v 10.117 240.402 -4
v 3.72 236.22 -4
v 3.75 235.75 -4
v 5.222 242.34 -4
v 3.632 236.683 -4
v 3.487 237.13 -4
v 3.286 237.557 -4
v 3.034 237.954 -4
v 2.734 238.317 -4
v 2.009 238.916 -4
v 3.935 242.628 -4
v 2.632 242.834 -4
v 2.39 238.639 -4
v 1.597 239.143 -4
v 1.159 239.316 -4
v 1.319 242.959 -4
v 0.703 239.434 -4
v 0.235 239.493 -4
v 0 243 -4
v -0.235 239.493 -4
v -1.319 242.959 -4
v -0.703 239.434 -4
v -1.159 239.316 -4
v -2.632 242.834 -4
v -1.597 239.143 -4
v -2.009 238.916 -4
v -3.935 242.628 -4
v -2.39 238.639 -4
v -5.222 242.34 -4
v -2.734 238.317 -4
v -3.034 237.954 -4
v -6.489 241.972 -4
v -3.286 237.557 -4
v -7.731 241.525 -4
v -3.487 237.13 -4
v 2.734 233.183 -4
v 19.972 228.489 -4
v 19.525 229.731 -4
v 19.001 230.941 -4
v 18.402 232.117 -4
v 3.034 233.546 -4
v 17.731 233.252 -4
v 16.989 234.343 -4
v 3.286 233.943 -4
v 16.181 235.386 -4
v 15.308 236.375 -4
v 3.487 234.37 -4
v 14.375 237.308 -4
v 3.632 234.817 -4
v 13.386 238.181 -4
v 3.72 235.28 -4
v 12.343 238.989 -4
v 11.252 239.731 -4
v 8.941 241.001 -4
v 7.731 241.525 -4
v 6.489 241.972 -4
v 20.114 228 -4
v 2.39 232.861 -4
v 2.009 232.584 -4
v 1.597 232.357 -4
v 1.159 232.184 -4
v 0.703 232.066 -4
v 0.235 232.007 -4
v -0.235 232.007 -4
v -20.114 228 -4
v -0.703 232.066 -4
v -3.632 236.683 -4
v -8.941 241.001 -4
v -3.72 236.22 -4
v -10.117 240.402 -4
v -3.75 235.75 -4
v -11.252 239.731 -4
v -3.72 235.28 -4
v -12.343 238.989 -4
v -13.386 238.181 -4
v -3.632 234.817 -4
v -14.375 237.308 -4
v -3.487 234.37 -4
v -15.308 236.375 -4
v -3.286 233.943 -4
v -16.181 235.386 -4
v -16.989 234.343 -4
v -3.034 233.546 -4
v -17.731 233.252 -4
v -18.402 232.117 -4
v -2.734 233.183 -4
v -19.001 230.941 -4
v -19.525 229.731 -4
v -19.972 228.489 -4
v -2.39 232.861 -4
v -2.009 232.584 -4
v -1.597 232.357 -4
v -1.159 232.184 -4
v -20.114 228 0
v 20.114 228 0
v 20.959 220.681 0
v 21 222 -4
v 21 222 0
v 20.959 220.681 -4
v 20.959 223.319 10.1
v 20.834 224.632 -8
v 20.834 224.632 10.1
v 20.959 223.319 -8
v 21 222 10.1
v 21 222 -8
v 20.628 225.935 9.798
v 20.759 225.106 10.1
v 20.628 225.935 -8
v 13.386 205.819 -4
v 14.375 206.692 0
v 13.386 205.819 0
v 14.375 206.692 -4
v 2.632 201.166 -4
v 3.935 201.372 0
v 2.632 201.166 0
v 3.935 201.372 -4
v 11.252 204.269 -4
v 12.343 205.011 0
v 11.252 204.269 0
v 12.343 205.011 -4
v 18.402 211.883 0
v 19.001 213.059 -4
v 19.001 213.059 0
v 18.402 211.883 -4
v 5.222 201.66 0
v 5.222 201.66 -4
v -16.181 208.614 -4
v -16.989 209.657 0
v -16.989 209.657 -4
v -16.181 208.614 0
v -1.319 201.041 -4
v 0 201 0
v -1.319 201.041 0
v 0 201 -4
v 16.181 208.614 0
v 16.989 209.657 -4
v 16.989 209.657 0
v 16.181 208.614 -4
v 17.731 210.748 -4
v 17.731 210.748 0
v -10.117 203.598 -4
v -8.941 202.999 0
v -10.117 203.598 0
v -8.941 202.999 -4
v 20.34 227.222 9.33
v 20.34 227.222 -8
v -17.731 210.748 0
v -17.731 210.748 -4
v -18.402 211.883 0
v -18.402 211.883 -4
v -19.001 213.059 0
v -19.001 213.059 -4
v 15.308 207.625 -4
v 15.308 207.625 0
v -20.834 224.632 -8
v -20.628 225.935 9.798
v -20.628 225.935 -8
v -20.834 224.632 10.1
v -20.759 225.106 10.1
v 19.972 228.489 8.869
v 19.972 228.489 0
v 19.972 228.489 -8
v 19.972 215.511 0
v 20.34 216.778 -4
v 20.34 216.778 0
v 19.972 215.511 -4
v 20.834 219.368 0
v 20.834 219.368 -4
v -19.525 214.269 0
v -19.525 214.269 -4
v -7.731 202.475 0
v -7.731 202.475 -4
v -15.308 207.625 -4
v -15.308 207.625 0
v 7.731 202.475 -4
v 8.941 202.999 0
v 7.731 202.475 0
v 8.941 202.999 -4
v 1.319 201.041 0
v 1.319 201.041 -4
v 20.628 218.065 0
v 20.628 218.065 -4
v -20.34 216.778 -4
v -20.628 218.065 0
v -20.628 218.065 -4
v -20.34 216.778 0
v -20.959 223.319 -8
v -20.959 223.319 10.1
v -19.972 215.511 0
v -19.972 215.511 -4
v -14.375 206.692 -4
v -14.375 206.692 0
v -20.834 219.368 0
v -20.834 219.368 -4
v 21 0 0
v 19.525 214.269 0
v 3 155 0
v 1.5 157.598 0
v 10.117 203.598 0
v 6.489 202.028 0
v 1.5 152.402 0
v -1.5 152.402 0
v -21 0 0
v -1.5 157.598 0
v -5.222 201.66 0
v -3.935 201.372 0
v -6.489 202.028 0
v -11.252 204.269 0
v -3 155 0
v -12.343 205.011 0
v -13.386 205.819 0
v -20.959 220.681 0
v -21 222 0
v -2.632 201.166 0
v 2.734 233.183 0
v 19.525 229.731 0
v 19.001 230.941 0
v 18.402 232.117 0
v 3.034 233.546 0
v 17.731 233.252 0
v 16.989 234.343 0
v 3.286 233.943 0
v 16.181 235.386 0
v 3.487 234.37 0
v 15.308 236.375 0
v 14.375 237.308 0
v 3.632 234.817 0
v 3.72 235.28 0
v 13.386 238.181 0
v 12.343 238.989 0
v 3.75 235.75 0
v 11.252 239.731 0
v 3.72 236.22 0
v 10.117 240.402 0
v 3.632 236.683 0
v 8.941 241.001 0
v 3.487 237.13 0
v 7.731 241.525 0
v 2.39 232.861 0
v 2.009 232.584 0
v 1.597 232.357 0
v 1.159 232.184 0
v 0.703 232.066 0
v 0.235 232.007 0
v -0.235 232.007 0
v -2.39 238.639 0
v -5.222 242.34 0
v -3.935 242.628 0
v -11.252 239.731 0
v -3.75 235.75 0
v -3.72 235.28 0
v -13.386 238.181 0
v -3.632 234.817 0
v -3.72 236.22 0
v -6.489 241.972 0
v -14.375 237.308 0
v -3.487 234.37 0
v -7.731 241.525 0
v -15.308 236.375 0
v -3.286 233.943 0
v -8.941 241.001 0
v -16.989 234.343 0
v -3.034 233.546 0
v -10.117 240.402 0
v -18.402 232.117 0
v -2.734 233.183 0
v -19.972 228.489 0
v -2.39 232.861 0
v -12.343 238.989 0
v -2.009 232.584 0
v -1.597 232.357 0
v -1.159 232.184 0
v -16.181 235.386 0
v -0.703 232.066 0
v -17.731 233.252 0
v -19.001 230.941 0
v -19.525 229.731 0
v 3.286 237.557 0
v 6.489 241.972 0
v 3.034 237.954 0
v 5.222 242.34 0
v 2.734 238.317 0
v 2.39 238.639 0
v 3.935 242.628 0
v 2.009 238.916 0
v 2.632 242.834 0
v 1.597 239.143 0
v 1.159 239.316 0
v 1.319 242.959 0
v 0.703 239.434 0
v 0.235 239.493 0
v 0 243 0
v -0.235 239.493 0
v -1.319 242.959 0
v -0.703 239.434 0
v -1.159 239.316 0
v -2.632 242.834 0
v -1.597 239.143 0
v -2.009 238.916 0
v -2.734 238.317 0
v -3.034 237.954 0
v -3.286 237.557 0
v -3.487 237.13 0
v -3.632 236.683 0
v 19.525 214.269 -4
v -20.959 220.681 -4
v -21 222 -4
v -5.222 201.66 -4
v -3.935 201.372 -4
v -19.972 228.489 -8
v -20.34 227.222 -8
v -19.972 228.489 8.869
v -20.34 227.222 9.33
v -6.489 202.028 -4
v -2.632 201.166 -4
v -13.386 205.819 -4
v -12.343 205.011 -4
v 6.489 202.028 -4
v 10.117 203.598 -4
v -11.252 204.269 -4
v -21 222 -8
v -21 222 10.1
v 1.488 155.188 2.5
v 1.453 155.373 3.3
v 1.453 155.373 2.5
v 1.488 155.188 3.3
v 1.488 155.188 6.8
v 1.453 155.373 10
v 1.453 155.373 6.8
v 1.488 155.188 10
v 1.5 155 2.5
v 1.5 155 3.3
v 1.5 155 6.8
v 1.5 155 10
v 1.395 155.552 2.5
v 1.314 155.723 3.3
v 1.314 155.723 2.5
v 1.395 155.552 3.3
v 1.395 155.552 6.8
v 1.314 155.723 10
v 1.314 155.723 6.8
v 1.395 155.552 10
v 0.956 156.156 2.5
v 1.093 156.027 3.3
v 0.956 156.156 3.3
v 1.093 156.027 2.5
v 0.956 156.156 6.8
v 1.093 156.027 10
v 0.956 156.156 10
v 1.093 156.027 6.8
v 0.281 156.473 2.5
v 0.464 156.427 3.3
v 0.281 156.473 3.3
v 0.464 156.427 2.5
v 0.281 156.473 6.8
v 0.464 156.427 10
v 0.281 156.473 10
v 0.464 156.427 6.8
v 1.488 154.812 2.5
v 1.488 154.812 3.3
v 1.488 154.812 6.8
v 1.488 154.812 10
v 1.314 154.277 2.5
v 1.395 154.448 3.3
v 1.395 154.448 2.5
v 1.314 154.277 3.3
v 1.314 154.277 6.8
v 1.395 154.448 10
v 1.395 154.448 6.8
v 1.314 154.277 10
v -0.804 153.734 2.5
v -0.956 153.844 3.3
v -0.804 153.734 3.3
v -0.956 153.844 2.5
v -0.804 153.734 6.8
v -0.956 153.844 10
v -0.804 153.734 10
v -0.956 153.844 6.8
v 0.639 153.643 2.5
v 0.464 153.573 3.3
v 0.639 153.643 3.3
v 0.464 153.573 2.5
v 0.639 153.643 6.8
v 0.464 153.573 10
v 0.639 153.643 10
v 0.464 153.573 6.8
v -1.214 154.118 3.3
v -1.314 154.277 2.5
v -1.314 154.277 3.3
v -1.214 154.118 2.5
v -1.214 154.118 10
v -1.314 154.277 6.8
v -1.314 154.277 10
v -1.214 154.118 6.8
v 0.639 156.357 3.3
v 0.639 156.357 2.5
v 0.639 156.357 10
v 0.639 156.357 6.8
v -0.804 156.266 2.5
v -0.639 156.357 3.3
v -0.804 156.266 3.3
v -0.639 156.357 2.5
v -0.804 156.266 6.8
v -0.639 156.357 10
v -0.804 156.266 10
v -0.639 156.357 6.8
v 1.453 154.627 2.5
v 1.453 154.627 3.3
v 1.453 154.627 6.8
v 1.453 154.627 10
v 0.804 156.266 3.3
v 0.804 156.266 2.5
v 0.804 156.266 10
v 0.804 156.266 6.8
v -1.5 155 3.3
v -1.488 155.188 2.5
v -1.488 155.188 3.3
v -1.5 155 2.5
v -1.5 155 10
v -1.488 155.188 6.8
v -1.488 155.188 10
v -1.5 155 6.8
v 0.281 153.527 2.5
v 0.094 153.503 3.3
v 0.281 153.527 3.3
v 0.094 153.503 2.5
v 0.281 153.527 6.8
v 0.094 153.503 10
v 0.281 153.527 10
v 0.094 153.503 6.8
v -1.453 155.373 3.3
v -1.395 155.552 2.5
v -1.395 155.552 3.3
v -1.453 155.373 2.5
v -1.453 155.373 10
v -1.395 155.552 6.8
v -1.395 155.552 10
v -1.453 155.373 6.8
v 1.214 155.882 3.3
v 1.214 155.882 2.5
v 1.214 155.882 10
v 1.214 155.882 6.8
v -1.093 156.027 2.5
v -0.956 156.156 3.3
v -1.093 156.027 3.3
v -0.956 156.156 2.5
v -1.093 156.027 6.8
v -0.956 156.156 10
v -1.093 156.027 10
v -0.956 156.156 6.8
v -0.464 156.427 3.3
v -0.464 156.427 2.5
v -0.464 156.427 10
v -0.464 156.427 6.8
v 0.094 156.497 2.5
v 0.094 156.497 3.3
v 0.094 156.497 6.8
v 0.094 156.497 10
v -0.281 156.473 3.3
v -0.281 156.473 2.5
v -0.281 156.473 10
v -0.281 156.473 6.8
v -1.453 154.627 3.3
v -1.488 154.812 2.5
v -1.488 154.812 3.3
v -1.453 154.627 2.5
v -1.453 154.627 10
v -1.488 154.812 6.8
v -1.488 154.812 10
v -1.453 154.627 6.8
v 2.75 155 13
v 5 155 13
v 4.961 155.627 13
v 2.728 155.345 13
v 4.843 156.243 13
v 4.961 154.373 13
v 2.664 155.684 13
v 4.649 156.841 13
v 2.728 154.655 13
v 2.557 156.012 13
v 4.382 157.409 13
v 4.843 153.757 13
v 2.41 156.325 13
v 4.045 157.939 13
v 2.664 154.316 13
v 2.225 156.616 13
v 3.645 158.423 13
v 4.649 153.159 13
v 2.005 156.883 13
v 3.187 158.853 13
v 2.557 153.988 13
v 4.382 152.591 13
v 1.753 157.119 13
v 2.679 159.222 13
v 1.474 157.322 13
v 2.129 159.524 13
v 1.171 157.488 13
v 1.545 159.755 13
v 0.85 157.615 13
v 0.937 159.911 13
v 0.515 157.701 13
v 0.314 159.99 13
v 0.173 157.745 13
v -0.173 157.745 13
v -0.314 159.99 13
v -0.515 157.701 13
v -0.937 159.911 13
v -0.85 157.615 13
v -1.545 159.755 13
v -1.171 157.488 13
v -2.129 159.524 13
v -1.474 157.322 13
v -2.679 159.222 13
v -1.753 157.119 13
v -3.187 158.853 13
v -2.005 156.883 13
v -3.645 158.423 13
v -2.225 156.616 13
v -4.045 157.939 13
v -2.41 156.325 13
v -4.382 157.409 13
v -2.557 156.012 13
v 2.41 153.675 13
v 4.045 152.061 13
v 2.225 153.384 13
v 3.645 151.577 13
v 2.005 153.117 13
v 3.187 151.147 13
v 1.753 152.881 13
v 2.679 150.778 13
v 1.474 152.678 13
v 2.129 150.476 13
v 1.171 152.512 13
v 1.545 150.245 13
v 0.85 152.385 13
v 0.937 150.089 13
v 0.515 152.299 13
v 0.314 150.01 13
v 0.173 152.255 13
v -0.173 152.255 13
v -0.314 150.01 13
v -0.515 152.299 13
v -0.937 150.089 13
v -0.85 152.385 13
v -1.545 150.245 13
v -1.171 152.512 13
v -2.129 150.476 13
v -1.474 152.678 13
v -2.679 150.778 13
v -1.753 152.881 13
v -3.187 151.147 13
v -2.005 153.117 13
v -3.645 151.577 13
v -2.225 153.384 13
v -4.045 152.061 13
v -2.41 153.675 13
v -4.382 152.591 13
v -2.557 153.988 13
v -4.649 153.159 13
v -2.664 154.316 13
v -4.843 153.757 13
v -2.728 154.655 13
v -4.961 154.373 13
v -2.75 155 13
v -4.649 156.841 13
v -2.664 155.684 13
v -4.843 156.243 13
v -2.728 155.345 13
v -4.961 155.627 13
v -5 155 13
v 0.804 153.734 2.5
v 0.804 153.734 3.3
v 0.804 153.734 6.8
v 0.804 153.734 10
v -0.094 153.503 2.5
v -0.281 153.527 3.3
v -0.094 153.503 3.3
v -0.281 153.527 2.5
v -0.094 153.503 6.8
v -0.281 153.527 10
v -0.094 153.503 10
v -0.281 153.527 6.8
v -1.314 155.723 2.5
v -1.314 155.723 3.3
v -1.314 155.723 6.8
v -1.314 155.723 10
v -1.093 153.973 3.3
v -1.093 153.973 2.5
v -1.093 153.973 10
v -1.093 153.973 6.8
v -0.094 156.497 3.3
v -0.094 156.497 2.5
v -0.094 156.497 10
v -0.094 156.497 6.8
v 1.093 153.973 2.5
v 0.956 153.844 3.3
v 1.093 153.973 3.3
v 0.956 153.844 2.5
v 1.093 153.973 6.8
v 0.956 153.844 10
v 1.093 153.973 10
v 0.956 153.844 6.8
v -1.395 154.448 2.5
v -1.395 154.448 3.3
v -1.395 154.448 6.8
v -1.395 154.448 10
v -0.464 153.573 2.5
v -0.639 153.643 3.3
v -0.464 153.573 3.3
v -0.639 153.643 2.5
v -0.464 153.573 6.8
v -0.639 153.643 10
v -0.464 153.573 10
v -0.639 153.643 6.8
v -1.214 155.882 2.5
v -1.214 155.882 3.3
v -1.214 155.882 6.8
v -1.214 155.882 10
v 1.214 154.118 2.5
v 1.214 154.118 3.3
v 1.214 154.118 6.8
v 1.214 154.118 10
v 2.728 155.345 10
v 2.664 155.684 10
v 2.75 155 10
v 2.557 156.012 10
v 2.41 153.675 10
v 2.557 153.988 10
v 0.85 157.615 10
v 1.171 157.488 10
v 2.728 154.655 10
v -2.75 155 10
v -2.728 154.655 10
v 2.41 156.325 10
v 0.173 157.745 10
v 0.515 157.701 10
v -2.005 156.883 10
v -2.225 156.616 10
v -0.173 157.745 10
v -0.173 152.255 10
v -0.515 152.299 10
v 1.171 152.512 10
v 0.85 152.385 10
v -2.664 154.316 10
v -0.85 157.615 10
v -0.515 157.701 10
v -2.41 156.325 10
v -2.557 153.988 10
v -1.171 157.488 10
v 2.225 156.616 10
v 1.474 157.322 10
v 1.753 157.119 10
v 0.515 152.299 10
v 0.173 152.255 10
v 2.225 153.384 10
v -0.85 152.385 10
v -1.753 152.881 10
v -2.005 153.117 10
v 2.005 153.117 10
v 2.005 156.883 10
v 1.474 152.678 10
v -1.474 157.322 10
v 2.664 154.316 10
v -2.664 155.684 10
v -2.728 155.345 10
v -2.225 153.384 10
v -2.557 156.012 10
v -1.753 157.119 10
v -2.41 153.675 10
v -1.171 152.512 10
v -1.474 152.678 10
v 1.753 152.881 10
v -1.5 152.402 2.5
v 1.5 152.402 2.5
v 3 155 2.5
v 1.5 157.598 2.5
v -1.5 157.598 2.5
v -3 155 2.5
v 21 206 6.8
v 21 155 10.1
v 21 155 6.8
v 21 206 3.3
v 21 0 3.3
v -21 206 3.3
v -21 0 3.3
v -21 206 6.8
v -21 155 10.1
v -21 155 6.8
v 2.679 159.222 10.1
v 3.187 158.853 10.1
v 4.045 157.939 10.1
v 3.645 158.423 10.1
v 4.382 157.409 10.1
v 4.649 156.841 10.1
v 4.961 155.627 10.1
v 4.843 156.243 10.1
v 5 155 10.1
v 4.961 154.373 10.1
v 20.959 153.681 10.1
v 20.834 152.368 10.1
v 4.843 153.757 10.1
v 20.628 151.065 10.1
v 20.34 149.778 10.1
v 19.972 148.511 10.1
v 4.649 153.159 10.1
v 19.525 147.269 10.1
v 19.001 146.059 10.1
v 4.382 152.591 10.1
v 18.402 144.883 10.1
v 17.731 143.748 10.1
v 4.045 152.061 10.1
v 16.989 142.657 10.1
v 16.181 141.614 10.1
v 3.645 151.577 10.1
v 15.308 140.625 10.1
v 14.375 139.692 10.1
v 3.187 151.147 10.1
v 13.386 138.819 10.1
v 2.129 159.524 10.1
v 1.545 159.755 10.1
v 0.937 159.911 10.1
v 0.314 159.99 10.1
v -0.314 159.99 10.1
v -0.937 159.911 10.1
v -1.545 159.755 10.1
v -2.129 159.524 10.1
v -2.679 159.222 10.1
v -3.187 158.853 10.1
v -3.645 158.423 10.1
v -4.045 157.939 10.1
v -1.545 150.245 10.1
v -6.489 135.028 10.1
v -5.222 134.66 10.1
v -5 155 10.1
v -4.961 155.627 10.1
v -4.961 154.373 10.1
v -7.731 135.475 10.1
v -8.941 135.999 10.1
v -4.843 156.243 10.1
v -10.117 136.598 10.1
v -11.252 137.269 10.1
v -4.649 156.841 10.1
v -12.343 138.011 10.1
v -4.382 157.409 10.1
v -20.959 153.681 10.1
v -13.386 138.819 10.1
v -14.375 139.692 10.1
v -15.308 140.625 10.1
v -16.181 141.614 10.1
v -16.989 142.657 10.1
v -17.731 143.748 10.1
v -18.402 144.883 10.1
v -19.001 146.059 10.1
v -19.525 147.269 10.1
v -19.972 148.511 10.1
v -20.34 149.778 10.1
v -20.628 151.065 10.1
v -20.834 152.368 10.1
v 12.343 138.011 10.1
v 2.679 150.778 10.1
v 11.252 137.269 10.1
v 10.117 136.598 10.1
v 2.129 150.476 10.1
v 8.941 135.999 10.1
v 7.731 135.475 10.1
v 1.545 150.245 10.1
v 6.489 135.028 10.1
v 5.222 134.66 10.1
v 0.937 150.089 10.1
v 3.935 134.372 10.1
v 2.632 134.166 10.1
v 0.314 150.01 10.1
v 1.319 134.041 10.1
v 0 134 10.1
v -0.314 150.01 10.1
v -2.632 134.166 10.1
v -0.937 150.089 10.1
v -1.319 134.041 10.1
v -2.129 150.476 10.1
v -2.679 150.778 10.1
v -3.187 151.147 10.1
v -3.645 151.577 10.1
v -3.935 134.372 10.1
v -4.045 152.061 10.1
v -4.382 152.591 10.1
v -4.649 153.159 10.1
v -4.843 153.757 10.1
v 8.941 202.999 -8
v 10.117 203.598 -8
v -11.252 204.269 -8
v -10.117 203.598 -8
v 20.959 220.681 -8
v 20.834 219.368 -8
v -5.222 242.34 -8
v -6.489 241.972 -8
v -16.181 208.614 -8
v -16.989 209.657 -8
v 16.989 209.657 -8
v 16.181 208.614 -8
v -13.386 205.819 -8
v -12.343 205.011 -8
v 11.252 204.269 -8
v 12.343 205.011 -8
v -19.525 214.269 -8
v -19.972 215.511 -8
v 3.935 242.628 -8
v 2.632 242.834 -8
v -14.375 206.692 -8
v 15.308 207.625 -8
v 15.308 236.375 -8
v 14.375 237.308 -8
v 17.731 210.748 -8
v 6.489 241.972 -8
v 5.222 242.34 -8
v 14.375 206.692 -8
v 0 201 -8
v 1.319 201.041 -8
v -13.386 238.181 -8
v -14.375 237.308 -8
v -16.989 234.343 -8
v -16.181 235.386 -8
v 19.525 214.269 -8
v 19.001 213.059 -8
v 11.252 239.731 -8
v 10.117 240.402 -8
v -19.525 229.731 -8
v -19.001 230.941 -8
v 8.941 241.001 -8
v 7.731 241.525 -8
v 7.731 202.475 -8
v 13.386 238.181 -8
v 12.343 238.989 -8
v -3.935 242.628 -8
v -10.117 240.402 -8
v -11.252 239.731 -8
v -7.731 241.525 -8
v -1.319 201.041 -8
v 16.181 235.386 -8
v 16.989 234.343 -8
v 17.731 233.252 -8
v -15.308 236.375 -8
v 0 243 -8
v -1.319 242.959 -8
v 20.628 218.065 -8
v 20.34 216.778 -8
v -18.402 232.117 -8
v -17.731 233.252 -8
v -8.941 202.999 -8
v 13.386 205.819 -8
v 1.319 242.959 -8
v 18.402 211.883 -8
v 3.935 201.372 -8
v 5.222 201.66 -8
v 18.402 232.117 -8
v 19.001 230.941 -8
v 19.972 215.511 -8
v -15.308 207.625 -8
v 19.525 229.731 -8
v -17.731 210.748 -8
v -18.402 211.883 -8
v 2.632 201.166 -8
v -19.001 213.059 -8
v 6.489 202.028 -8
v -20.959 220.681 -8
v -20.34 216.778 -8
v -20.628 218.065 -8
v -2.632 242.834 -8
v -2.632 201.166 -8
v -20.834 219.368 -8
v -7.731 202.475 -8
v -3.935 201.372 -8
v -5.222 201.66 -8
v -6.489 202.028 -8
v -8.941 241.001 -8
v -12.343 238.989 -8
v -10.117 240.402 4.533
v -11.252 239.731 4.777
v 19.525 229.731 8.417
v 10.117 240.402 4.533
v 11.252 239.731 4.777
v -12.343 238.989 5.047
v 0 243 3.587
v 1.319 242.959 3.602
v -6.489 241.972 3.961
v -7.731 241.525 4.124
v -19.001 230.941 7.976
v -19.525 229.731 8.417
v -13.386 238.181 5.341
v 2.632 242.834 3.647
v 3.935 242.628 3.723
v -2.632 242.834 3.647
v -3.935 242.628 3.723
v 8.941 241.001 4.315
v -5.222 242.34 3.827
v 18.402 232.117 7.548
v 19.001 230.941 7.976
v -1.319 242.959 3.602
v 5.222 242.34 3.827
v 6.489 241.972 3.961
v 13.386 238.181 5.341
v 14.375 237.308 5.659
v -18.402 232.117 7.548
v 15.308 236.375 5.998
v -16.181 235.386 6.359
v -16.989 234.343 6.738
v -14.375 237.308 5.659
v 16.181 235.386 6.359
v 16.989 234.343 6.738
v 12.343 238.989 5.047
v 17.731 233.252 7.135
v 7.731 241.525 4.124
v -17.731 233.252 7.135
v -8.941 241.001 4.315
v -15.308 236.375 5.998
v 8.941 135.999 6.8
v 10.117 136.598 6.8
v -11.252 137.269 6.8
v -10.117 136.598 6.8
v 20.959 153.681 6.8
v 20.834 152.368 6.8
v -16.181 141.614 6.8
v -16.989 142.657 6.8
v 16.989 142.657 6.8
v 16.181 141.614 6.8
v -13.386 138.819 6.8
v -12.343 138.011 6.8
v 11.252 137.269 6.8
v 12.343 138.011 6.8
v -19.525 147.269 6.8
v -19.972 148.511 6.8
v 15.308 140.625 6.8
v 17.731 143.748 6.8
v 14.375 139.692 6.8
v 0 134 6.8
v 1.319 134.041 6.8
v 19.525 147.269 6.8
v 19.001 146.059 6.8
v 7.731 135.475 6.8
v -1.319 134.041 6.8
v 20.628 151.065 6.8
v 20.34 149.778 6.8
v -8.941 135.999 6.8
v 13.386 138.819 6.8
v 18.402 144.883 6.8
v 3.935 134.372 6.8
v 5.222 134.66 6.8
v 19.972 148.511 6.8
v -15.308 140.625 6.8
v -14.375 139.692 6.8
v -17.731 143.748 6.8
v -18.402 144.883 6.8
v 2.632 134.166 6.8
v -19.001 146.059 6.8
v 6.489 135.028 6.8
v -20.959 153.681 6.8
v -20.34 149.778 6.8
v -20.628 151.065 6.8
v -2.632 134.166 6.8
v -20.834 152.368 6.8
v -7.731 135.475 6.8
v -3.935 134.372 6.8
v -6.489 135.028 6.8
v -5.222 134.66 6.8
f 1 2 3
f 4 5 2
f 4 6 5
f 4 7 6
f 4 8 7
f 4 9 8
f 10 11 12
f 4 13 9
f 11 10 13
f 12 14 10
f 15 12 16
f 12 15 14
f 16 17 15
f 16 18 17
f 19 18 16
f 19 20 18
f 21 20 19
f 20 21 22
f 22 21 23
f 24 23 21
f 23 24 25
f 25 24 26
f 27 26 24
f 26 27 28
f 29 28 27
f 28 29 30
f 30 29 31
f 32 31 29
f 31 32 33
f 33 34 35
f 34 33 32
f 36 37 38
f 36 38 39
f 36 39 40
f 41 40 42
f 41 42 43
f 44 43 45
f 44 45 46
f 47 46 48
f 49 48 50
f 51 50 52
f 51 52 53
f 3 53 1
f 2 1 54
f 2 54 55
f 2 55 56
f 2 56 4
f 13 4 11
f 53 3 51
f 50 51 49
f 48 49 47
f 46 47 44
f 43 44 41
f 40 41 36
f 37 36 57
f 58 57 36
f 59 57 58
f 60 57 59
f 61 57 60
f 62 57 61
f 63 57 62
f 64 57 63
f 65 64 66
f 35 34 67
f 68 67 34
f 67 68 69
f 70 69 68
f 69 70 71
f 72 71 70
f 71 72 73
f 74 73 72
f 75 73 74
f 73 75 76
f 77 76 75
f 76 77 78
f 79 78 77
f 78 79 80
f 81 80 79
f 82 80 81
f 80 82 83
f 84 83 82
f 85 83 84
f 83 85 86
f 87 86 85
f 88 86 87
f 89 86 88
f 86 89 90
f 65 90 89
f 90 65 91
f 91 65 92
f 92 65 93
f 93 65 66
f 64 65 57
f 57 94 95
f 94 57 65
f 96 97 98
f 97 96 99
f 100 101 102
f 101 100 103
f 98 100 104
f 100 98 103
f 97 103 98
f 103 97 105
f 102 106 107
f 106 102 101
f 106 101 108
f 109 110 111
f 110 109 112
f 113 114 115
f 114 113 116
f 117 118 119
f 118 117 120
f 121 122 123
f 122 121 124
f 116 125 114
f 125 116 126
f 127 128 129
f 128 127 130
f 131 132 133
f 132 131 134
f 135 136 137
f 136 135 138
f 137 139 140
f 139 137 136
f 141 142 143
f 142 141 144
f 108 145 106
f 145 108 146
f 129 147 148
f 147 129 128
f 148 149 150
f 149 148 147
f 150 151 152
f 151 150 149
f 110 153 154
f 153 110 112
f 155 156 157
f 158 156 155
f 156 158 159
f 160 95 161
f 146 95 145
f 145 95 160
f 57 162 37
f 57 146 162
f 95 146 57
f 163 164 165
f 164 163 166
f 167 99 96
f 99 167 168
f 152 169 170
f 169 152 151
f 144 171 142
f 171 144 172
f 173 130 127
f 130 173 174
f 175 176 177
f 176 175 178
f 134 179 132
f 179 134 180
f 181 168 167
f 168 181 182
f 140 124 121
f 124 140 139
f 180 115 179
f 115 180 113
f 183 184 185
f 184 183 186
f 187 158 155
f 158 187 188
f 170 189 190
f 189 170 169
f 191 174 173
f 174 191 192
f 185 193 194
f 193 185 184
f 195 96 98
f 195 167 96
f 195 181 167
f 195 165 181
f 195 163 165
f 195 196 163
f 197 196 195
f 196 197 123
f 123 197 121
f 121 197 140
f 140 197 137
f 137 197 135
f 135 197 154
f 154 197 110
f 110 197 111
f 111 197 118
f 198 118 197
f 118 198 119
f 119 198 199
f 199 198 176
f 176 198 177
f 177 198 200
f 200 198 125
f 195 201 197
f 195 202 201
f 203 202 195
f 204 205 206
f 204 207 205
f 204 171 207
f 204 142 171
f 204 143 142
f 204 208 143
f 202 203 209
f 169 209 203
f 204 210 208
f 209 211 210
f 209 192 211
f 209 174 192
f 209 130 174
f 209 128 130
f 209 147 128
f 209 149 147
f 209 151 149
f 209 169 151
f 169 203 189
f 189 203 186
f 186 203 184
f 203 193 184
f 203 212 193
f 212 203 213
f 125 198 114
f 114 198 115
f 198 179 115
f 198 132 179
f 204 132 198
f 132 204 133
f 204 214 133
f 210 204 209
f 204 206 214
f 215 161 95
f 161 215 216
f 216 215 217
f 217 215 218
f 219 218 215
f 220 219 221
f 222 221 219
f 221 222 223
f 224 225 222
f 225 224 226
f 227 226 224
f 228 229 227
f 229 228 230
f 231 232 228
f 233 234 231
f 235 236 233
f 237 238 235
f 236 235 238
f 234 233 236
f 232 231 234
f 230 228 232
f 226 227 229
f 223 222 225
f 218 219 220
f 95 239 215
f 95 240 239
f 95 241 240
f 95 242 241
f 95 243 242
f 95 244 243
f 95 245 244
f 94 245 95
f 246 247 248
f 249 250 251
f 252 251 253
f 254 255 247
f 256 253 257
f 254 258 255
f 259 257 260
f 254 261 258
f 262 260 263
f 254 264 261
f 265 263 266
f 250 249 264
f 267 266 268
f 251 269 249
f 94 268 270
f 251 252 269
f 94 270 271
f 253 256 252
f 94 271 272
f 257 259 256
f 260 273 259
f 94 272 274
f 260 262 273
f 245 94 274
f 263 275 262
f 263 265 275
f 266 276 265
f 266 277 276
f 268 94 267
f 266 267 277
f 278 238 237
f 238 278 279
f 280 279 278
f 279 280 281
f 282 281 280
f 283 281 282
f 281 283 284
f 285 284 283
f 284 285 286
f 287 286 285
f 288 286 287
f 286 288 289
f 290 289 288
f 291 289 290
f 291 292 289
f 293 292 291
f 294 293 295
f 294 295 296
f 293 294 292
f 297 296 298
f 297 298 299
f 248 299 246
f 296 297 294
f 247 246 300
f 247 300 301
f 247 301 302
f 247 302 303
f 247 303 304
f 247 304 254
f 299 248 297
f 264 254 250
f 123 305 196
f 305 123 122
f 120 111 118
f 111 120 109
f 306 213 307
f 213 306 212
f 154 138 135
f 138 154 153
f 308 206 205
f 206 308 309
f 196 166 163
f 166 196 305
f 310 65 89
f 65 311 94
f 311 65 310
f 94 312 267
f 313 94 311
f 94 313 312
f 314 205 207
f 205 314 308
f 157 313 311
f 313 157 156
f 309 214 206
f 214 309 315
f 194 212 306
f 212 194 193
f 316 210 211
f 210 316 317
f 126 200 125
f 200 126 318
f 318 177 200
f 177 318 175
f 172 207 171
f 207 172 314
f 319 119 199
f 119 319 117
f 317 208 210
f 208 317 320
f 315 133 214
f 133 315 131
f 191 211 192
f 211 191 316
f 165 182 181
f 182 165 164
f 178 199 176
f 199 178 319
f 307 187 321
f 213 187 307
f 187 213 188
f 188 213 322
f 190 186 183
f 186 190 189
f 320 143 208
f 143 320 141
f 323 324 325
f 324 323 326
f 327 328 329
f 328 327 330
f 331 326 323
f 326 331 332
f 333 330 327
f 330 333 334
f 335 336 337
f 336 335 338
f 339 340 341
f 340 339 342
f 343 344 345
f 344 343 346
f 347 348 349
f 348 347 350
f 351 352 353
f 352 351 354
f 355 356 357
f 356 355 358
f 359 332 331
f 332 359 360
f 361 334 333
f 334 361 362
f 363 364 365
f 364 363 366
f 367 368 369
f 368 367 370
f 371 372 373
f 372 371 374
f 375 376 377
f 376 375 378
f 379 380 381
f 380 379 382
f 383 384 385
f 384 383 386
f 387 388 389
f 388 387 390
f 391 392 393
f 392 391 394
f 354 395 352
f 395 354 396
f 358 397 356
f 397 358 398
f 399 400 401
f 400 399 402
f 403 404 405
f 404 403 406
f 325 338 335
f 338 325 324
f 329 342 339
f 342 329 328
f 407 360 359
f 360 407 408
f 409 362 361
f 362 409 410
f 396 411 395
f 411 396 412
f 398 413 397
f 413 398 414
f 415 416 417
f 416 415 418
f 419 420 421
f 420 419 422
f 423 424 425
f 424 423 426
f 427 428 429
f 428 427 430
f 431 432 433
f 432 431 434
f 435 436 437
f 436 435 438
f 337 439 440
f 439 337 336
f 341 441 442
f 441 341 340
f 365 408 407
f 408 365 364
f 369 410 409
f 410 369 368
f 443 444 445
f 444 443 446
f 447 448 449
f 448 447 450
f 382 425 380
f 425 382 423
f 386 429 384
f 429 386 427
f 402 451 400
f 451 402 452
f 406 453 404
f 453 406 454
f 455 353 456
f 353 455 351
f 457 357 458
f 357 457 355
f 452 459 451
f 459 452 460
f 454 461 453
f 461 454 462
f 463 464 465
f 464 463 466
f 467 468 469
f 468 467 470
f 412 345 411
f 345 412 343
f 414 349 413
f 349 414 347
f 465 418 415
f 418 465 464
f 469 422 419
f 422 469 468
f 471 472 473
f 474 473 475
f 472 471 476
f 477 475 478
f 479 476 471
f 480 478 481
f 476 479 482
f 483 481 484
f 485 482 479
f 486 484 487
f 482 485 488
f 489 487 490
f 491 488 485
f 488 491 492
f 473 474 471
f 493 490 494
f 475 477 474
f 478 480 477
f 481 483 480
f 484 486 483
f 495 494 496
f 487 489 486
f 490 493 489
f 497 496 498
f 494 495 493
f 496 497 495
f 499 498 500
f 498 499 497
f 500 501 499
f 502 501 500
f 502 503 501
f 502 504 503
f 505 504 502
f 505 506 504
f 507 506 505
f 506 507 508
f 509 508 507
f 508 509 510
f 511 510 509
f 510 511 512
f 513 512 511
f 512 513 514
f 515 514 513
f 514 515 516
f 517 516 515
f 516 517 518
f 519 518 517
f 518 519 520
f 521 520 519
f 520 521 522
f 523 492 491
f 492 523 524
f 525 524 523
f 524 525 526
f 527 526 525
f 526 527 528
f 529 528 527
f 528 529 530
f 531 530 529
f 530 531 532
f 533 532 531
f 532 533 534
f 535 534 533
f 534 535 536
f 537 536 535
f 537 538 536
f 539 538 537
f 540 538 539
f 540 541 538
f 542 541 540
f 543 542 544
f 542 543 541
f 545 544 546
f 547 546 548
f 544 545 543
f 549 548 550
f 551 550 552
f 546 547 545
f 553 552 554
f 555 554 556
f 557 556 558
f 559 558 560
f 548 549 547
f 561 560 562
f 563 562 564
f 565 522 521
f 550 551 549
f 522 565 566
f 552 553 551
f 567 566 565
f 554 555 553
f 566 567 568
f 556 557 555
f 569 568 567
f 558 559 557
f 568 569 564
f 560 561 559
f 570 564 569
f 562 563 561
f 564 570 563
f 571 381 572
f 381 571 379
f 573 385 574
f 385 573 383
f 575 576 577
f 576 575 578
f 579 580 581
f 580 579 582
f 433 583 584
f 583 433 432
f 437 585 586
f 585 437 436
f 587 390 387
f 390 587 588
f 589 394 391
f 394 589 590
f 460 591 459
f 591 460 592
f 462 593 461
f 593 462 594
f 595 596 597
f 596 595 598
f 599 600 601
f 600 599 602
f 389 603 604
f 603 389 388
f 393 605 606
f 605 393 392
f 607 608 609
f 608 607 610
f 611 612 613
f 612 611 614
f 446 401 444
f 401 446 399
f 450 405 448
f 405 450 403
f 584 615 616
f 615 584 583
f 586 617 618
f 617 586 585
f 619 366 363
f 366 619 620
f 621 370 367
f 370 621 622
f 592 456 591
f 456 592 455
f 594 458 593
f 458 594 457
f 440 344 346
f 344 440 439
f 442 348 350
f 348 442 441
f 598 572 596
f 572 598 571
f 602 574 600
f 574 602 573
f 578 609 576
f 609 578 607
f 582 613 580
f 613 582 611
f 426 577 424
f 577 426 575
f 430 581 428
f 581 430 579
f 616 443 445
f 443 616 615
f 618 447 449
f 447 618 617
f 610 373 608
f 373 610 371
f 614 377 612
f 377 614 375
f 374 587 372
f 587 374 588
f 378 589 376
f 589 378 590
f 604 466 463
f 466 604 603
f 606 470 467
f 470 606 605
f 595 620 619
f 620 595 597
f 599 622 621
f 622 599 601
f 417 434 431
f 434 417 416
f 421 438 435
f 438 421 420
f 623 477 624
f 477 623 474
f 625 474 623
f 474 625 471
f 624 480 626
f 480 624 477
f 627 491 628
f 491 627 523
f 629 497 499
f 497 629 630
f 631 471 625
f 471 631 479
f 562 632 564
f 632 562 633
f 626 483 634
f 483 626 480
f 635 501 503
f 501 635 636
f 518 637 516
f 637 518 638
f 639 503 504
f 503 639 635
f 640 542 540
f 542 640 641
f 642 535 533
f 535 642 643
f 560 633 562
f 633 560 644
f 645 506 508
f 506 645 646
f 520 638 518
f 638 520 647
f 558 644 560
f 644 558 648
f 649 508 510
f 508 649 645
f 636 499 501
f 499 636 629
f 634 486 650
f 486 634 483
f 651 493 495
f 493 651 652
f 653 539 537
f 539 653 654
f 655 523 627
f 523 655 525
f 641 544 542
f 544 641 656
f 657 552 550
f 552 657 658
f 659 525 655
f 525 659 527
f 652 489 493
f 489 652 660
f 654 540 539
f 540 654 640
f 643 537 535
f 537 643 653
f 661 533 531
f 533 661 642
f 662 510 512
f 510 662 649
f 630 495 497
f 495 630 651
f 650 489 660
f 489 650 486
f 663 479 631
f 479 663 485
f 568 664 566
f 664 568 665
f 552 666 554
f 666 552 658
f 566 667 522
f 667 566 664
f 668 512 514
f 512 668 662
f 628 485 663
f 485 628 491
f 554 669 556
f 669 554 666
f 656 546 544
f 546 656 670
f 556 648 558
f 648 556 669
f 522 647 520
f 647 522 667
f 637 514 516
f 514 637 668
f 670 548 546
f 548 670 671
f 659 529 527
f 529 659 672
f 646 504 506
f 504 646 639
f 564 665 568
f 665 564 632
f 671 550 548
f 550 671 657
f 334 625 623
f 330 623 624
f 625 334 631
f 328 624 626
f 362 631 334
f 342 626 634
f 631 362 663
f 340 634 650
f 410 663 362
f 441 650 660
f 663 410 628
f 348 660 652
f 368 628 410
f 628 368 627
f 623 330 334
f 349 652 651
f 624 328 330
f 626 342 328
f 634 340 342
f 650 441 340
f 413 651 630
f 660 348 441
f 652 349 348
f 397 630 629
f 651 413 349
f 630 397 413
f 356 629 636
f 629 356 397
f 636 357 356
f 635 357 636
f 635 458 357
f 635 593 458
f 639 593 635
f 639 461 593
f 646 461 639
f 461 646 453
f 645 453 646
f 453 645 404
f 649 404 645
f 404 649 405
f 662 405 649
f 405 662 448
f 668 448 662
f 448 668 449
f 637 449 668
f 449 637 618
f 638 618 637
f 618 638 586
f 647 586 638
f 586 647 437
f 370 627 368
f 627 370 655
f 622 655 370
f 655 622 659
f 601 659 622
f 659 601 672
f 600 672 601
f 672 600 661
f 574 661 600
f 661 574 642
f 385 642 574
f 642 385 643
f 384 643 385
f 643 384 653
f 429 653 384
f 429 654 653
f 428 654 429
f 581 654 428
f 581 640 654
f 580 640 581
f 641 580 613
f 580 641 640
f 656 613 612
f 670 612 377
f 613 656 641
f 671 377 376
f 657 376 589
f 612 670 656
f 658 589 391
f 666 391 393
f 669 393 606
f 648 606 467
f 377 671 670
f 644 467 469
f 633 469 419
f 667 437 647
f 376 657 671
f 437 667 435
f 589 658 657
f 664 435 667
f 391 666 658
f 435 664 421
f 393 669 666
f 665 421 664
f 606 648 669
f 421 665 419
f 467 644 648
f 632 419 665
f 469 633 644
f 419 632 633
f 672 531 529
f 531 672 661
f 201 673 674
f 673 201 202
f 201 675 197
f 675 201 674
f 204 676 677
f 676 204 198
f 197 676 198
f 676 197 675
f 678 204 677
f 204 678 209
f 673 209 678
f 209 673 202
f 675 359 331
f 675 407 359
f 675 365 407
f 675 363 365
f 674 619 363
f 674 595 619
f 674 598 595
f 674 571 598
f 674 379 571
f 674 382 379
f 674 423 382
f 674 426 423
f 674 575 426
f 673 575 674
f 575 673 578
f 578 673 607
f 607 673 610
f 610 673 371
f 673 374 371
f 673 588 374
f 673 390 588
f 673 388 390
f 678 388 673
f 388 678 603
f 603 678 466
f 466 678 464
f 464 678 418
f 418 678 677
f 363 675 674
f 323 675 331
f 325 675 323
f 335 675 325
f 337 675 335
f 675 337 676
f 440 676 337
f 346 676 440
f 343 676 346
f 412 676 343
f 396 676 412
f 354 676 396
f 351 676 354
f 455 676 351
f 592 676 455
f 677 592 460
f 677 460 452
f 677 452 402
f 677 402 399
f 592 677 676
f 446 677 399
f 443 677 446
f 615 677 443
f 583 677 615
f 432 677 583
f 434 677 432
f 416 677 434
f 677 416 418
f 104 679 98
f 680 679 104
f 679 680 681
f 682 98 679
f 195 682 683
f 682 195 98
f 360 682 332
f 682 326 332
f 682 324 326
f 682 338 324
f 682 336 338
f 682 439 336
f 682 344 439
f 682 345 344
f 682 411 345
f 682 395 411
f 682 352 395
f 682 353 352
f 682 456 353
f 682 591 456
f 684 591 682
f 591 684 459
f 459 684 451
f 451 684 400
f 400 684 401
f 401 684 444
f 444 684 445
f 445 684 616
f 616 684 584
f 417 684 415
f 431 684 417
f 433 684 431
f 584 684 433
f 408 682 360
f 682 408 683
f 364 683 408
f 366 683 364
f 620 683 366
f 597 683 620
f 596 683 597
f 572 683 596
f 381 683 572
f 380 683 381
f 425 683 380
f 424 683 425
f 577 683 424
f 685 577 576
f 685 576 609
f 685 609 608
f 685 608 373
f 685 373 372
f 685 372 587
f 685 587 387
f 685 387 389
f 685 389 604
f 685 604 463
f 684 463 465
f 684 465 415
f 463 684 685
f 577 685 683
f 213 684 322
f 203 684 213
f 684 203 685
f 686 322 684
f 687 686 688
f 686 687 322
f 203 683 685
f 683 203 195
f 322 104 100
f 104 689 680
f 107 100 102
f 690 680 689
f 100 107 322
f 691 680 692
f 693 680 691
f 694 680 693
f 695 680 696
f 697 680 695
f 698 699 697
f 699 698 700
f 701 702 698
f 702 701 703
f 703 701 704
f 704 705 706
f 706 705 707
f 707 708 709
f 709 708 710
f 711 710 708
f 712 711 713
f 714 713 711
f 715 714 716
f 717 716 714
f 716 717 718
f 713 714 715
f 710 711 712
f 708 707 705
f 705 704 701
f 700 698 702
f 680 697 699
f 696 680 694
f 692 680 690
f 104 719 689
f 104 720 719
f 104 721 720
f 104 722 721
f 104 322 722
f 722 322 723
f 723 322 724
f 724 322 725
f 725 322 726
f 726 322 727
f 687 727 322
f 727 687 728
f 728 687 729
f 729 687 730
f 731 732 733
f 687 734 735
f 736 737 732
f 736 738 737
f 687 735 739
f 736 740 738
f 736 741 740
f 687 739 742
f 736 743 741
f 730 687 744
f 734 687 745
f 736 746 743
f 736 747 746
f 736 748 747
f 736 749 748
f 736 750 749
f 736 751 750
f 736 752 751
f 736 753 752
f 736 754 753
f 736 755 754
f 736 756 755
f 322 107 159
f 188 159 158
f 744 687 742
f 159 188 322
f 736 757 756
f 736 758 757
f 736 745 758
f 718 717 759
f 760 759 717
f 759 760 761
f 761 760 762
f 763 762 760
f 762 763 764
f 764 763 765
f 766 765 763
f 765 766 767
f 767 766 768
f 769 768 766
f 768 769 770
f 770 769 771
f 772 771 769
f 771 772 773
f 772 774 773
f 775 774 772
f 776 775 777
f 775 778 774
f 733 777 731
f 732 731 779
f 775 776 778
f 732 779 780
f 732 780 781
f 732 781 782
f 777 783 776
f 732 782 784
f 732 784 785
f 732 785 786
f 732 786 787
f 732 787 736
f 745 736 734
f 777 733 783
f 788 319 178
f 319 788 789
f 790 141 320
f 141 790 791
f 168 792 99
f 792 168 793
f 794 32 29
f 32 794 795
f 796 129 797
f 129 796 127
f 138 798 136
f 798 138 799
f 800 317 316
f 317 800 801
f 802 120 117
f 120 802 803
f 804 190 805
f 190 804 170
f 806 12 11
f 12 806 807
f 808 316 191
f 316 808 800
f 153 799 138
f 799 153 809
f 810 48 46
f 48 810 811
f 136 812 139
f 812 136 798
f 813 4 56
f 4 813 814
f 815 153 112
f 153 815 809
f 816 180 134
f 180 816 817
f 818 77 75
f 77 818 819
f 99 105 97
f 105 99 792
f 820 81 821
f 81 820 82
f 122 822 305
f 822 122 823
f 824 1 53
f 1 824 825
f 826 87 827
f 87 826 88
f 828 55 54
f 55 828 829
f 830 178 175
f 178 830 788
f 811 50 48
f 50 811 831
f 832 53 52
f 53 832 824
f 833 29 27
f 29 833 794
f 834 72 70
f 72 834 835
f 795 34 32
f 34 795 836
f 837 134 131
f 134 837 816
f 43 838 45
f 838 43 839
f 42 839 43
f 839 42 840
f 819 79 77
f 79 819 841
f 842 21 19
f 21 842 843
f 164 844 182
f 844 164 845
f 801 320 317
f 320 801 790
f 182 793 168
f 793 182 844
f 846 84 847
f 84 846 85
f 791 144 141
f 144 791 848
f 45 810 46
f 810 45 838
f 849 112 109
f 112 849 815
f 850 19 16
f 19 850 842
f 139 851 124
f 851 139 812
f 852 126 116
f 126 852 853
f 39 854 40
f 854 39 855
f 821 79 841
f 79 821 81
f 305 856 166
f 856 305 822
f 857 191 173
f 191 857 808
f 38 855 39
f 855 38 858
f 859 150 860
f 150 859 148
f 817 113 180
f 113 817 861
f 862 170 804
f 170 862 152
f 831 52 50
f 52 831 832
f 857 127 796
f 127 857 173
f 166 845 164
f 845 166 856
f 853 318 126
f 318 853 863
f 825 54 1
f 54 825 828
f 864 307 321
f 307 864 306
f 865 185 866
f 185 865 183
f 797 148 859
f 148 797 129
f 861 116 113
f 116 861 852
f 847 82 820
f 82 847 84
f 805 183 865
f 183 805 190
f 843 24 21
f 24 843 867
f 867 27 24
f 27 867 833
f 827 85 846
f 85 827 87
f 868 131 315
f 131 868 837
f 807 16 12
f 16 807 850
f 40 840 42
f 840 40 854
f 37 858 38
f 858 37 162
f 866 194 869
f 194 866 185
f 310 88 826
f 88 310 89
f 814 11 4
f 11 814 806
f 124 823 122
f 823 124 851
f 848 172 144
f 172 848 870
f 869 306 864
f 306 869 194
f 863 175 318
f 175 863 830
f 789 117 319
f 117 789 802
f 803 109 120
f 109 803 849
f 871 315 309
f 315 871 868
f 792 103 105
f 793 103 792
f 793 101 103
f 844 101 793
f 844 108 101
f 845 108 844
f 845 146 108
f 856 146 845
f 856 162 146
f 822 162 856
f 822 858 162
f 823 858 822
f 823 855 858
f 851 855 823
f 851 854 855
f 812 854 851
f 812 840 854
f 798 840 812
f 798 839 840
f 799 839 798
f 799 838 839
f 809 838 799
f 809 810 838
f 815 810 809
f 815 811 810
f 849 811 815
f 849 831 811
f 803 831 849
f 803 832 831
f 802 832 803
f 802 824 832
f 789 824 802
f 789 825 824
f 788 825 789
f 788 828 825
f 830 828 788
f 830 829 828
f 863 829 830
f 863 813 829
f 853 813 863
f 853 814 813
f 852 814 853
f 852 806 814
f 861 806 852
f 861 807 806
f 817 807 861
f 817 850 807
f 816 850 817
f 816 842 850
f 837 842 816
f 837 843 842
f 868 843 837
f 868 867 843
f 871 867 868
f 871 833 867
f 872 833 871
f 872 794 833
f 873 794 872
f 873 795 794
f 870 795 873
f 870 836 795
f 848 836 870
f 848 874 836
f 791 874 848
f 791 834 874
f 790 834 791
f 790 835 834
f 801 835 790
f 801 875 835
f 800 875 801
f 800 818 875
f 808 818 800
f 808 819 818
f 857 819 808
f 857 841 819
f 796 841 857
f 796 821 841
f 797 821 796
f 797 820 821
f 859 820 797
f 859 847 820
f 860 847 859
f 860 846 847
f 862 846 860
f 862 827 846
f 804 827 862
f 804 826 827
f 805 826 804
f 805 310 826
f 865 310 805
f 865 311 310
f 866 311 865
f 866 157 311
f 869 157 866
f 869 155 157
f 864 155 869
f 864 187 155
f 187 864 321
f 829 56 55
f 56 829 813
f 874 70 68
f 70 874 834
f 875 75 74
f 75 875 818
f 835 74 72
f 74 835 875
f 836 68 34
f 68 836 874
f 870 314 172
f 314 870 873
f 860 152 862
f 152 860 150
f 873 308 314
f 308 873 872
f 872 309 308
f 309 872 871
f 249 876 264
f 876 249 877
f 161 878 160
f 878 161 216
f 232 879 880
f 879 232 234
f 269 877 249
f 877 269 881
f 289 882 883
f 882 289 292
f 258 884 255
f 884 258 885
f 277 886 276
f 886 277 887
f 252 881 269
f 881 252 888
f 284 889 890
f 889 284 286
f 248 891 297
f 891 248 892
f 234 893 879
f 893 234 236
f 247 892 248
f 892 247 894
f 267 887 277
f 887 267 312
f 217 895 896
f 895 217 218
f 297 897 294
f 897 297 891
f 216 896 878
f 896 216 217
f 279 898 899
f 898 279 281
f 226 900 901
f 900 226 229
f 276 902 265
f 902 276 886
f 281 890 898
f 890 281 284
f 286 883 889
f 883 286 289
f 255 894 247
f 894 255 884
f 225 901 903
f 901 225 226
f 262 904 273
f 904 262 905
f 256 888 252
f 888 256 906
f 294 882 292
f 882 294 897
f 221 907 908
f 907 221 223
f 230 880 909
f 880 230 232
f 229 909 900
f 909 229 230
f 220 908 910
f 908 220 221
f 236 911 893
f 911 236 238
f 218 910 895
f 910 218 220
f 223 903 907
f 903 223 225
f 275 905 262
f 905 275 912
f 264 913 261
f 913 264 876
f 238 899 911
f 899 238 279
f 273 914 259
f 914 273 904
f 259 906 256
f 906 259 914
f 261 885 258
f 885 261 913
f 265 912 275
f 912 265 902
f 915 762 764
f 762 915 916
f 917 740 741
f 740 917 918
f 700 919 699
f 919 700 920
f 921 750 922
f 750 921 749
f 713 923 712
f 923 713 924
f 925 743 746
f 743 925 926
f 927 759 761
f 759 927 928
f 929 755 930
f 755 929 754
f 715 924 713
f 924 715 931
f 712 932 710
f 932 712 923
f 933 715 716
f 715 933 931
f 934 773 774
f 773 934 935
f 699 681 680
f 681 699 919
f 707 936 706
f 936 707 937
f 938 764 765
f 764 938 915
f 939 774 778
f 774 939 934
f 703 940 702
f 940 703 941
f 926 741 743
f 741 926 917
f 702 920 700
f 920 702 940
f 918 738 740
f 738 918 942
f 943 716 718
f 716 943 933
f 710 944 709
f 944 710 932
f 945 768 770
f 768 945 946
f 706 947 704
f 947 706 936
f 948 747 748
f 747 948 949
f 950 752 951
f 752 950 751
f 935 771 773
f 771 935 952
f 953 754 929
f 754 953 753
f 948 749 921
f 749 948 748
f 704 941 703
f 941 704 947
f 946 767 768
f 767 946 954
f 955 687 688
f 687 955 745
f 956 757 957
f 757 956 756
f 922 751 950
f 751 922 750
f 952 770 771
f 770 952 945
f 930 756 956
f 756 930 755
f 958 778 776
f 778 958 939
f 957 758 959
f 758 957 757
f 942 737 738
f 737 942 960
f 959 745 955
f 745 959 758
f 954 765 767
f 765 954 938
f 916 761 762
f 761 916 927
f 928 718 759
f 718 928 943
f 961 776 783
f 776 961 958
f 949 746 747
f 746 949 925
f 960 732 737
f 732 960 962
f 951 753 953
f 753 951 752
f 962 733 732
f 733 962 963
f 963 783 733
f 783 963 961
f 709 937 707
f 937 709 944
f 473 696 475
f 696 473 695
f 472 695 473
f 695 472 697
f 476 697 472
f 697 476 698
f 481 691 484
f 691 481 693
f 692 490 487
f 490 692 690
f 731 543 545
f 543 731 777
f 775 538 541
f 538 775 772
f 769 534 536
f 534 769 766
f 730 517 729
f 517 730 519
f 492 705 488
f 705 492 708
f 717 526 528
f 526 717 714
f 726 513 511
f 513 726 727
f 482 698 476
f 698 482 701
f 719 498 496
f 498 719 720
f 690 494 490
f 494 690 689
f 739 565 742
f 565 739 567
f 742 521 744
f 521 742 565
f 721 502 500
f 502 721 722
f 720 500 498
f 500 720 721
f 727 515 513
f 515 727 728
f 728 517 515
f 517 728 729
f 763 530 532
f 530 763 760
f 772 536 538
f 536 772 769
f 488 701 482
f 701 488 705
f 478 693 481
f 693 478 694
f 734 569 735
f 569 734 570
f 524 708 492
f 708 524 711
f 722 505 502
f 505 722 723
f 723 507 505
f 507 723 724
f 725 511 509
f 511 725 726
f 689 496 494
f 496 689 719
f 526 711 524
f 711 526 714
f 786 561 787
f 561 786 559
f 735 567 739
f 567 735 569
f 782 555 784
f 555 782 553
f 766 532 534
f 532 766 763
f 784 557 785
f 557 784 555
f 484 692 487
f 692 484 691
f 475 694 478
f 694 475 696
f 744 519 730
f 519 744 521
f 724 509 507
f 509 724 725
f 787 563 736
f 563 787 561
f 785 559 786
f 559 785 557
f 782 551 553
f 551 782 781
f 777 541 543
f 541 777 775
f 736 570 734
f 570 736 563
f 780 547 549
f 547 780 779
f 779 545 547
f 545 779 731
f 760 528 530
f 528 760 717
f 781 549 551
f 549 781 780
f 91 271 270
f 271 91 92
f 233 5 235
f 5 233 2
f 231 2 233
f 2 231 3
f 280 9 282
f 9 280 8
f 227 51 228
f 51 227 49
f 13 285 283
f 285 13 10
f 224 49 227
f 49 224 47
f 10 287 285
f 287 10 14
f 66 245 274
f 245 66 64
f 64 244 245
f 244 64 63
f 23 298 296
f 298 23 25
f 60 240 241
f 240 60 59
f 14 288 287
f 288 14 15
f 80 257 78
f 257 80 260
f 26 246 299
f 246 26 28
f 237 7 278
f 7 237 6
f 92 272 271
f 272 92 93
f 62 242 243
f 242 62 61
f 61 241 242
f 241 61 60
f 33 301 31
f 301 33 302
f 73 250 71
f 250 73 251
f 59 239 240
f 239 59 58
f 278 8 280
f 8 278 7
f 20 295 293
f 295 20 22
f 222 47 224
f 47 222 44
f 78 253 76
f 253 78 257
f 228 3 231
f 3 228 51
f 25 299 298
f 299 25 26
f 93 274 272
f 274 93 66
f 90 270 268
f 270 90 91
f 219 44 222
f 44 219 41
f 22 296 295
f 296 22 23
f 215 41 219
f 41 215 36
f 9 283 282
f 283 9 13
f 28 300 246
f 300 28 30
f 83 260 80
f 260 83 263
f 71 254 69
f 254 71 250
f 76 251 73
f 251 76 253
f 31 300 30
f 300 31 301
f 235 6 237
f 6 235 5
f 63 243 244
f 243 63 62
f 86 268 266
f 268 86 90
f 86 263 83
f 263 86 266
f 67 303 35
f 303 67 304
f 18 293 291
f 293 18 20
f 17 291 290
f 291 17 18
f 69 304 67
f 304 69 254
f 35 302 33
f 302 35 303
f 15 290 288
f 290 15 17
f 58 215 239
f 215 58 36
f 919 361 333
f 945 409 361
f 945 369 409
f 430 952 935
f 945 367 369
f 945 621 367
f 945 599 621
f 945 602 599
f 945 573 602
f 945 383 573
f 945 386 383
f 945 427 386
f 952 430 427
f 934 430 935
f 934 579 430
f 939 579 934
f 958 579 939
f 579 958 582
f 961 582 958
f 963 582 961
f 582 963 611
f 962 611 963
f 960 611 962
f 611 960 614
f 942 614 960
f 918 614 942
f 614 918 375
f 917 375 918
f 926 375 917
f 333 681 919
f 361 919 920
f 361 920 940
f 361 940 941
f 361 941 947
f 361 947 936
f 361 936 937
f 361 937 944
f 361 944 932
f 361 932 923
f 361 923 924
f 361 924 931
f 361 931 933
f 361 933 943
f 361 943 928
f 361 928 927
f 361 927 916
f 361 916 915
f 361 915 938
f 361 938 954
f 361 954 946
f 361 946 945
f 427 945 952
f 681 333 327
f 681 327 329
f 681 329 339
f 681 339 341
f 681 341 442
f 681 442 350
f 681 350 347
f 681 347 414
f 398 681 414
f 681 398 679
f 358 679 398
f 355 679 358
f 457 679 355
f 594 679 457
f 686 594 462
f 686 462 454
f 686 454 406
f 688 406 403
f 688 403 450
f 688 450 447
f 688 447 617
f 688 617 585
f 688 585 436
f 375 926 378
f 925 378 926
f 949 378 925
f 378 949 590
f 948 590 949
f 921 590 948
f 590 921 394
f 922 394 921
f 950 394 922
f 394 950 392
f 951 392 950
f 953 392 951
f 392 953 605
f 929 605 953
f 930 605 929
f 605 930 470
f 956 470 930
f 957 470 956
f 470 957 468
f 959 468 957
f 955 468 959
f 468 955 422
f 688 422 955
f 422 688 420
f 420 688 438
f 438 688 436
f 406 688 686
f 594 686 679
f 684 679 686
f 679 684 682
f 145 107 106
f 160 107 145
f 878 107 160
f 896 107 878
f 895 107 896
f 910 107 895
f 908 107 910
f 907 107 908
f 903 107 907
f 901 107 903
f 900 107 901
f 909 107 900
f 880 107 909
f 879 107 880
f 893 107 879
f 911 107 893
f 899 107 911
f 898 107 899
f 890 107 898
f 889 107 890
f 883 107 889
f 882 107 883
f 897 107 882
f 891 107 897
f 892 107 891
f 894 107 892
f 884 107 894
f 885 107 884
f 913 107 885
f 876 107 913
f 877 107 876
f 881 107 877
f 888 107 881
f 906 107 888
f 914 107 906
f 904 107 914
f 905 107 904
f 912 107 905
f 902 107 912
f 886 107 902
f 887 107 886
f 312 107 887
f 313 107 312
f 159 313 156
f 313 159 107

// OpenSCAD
x=42;
y=222;
y_hole=155;
z=13;
z2=2*(2.5+0.8)+3.5;

difference() {
    union() {
        translate([-x/2, 0, 0]) {
            cube([x, y, 2.5+0.8]);
            translate([0, y_hole, 0]) cube([x, y-y_hole, z2]);
        }
        
        translate([0, y_hole, 0]) {
            cylinder(d=x, h=z2, $fn=100);
            cylinder(d=10, h=z, $fn=50);
        }
        
        translate([0, y, 0]) {
            translate([0, 0,-8]) cylinder(d=x, h=4, $fn=100);
            cylinder(d=x, h=z2, $fn=100);
        }
        
        intersection() {
            translate([-x/2, 0, -4]) cube([x, y+6, z]);
            translate([0, y, -4]) cylinder(d=x, h=4, $fn=100);
        }
        translate([0, y+11.5-3.75+6, -4]) cylinder(r=3.75, h=4, $fn=50);
    }
    
    // screw hole 
    translate([0, y_hole, 0]) {
        cylinder(d=3, h=z, $fn=50);
        translate([0, 0, z-3]) cylinder(d=5.5, h=3, $fn=50);
        cylinder(d=6, h=2.5, $fn=6);
    }
    
    translate([-x/2, 0, 2.5+0.8]) {
        cube([x, 206, 3.5]);
    }
    
    translate([0,y+18,10]) rotate([160,0,0]) cube([x,2*x,10], center=true);
}
